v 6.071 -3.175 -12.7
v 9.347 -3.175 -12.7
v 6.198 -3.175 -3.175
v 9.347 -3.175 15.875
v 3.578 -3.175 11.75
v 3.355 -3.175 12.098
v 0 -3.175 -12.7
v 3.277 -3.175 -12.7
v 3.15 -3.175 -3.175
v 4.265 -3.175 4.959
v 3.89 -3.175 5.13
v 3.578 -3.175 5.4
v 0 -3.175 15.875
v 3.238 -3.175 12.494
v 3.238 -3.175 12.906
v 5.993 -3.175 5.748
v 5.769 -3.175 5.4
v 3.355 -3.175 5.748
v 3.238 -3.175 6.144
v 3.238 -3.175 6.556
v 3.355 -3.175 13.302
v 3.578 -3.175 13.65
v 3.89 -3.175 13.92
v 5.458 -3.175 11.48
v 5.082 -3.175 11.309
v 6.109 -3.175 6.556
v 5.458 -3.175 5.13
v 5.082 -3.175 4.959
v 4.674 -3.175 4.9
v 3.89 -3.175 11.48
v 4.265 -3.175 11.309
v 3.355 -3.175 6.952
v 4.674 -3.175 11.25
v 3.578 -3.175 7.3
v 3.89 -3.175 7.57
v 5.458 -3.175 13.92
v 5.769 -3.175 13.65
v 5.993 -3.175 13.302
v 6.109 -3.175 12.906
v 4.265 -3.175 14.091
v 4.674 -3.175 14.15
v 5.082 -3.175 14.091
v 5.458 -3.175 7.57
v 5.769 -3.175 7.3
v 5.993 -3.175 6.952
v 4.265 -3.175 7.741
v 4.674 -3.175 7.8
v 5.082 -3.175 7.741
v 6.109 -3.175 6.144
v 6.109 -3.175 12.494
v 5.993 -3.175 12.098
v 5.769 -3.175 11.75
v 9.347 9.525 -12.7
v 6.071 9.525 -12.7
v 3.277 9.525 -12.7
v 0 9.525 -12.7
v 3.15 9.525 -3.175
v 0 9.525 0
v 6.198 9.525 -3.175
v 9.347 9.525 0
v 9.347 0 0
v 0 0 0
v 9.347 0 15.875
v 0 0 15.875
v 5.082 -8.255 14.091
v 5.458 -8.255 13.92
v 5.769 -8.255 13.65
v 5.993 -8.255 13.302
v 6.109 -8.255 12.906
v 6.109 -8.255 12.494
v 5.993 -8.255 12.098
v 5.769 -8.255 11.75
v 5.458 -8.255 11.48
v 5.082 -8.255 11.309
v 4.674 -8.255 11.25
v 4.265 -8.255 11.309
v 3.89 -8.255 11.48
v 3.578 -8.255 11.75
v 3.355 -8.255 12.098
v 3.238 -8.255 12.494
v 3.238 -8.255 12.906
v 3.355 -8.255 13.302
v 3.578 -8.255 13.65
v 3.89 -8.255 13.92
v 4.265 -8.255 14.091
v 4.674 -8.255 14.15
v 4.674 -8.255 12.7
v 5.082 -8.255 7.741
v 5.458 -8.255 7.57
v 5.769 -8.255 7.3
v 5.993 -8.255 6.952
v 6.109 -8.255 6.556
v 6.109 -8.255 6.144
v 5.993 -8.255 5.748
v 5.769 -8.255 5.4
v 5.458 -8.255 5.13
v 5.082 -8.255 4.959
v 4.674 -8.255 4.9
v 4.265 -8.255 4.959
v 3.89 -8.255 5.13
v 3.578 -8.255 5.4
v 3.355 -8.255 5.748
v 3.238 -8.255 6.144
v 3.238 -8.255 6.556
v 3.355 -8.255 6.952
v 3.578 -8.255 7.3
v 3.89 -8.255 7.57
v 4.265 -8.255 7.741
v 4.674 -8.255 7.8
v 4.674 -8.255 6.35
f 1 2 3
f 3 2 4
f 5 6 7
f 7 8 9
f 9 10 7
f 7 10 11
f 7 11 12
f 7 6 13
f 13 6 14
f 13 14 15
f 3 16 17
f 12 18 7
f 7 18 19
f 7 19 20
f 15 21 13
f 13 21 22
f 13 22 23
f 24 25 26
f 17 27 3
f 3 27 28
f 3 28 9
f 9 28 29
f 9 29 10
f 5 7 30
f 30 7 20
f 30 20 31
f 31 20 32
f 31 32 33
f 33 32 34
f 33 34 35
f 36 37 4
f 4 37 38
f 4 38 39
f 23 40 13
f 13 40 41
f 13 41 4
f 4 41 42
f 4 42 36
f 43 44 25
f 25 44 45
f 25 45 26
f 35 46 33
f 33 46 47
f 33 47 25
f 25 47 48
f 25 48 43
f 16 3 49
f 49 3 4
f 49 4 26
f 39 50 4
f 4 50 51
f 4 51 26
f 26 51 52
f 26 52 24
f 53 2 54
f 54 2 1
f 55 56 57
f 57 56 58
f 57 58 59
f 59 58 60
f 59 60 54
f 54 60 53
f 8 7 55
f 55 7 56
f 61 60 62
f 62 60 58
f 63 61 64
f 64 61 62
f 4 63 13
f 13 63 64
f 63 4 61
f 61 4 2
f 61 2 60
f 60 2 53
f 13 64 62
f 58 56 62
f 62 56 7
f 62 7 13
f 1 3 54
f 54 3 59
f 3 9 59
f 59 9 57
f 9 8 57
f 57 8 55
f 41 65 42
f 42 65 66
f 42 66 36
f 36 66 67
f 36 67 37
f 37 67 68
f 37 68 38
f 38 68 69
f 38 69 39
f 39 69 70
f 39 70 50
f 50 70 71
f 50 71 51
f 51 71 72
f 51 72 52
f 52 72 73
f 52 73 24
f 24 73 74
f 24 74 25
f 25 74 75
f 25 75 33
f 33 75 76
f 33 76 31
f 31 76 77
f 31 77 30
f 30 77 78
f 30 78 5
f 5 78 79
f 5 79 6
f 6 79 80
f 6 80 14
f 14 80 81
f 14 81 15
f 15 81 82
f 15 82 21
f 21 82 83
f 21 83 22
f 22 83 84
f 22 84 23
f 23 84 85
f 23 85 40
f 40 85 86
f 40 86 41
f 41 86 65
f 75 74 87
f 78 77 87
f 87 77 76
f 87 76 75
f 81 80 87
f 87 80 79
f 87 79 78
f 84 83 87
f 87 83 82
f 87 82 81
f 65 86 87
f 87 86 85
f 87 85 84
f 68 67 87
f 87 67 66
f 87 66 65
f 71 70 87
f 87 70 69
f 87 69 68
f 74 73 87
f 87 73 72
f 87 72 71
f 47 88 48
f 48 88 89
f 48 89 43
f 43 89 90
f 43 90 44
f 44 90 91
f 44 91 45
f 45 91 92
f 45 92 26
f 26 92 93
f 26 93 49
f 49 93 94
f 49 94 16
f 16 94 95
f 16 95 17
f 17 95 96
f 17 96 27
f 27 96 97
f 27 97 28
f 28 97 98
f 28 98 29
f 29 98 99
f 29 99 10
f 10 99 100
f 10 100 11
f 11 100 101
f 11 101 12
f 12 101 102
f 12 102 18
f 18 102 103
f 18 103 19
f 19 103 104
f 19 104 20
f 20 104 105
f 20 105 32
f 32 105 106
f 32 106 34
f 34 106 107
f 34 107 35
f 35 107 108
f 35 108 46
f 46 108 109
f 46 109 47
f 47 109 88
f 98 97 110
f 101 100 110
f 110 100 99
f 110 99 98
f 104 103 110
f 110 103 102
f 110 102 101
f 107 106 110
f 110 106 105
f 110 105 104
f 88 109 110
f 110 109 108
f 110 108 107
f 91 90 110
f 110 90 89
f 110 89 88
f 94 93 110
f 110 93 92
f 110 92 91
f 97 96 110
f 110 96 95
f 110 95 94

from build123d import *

# Parameters (mm, degrees)
SKETCH2_W           = 15.875
SKETCH2_H           = 3.175
BOSS_EXTRUDE1_DEPTH = 9.3472
CUT_EXTRUDE1_DEPTH  = 13.7
SKETCH4_R           = 1.45
BOSS_EXTRUDE2_DEPTH = 5.08


with BuildPart() as part:
    # Sketch2 → Boss-Extrude1 (new body)
    with BuildSketch(Plane(origin=(0, 0, 0), x_dir=(0, 0, -1), z_dir=(1, 0, 0))):
        with Locations((-7.9375, -1.5875)):
            Rectangle(SKETCH2_W, SKETCH2_H)
        Polygon((0, 9.525), (0, 0), (0, -3.175), (12.7, -3.175), (12.7, 9.525), align=None)
    extrude(amount=BOSS_EXTRUDE1_DEPTH)

    # Sketch3 → Cut-Extrude1 (cut, through all)
    with BuildSketch(Plane(origin=(0, 9.525, 0), x_dir=(1, 0, 0), z_dir=(0, 1, 0))):
        Polygon((3.2766, 12.7), (6.0706, 12.7), (6.1976, 3.175), (3.1496, 3.175), align=None)
    extrude(amount=-CUT_EXTRUDE1_DEPTH, mode=Mode.SUBTRACT)

    # Sketch4 → Boss-Extrude2 (add)
    with BuildSketch(Plane.XZ.offset(3.175)):
        with Locations((4.6736, 12.7)):
            Circle(SKETCH4_R)
        with Locations((4.6736, 6.35)):
            Circle(SKETCH4_R)
    extrude(amount=BOSS_EXTRUDE2_DEPTH)


solid = part.part
